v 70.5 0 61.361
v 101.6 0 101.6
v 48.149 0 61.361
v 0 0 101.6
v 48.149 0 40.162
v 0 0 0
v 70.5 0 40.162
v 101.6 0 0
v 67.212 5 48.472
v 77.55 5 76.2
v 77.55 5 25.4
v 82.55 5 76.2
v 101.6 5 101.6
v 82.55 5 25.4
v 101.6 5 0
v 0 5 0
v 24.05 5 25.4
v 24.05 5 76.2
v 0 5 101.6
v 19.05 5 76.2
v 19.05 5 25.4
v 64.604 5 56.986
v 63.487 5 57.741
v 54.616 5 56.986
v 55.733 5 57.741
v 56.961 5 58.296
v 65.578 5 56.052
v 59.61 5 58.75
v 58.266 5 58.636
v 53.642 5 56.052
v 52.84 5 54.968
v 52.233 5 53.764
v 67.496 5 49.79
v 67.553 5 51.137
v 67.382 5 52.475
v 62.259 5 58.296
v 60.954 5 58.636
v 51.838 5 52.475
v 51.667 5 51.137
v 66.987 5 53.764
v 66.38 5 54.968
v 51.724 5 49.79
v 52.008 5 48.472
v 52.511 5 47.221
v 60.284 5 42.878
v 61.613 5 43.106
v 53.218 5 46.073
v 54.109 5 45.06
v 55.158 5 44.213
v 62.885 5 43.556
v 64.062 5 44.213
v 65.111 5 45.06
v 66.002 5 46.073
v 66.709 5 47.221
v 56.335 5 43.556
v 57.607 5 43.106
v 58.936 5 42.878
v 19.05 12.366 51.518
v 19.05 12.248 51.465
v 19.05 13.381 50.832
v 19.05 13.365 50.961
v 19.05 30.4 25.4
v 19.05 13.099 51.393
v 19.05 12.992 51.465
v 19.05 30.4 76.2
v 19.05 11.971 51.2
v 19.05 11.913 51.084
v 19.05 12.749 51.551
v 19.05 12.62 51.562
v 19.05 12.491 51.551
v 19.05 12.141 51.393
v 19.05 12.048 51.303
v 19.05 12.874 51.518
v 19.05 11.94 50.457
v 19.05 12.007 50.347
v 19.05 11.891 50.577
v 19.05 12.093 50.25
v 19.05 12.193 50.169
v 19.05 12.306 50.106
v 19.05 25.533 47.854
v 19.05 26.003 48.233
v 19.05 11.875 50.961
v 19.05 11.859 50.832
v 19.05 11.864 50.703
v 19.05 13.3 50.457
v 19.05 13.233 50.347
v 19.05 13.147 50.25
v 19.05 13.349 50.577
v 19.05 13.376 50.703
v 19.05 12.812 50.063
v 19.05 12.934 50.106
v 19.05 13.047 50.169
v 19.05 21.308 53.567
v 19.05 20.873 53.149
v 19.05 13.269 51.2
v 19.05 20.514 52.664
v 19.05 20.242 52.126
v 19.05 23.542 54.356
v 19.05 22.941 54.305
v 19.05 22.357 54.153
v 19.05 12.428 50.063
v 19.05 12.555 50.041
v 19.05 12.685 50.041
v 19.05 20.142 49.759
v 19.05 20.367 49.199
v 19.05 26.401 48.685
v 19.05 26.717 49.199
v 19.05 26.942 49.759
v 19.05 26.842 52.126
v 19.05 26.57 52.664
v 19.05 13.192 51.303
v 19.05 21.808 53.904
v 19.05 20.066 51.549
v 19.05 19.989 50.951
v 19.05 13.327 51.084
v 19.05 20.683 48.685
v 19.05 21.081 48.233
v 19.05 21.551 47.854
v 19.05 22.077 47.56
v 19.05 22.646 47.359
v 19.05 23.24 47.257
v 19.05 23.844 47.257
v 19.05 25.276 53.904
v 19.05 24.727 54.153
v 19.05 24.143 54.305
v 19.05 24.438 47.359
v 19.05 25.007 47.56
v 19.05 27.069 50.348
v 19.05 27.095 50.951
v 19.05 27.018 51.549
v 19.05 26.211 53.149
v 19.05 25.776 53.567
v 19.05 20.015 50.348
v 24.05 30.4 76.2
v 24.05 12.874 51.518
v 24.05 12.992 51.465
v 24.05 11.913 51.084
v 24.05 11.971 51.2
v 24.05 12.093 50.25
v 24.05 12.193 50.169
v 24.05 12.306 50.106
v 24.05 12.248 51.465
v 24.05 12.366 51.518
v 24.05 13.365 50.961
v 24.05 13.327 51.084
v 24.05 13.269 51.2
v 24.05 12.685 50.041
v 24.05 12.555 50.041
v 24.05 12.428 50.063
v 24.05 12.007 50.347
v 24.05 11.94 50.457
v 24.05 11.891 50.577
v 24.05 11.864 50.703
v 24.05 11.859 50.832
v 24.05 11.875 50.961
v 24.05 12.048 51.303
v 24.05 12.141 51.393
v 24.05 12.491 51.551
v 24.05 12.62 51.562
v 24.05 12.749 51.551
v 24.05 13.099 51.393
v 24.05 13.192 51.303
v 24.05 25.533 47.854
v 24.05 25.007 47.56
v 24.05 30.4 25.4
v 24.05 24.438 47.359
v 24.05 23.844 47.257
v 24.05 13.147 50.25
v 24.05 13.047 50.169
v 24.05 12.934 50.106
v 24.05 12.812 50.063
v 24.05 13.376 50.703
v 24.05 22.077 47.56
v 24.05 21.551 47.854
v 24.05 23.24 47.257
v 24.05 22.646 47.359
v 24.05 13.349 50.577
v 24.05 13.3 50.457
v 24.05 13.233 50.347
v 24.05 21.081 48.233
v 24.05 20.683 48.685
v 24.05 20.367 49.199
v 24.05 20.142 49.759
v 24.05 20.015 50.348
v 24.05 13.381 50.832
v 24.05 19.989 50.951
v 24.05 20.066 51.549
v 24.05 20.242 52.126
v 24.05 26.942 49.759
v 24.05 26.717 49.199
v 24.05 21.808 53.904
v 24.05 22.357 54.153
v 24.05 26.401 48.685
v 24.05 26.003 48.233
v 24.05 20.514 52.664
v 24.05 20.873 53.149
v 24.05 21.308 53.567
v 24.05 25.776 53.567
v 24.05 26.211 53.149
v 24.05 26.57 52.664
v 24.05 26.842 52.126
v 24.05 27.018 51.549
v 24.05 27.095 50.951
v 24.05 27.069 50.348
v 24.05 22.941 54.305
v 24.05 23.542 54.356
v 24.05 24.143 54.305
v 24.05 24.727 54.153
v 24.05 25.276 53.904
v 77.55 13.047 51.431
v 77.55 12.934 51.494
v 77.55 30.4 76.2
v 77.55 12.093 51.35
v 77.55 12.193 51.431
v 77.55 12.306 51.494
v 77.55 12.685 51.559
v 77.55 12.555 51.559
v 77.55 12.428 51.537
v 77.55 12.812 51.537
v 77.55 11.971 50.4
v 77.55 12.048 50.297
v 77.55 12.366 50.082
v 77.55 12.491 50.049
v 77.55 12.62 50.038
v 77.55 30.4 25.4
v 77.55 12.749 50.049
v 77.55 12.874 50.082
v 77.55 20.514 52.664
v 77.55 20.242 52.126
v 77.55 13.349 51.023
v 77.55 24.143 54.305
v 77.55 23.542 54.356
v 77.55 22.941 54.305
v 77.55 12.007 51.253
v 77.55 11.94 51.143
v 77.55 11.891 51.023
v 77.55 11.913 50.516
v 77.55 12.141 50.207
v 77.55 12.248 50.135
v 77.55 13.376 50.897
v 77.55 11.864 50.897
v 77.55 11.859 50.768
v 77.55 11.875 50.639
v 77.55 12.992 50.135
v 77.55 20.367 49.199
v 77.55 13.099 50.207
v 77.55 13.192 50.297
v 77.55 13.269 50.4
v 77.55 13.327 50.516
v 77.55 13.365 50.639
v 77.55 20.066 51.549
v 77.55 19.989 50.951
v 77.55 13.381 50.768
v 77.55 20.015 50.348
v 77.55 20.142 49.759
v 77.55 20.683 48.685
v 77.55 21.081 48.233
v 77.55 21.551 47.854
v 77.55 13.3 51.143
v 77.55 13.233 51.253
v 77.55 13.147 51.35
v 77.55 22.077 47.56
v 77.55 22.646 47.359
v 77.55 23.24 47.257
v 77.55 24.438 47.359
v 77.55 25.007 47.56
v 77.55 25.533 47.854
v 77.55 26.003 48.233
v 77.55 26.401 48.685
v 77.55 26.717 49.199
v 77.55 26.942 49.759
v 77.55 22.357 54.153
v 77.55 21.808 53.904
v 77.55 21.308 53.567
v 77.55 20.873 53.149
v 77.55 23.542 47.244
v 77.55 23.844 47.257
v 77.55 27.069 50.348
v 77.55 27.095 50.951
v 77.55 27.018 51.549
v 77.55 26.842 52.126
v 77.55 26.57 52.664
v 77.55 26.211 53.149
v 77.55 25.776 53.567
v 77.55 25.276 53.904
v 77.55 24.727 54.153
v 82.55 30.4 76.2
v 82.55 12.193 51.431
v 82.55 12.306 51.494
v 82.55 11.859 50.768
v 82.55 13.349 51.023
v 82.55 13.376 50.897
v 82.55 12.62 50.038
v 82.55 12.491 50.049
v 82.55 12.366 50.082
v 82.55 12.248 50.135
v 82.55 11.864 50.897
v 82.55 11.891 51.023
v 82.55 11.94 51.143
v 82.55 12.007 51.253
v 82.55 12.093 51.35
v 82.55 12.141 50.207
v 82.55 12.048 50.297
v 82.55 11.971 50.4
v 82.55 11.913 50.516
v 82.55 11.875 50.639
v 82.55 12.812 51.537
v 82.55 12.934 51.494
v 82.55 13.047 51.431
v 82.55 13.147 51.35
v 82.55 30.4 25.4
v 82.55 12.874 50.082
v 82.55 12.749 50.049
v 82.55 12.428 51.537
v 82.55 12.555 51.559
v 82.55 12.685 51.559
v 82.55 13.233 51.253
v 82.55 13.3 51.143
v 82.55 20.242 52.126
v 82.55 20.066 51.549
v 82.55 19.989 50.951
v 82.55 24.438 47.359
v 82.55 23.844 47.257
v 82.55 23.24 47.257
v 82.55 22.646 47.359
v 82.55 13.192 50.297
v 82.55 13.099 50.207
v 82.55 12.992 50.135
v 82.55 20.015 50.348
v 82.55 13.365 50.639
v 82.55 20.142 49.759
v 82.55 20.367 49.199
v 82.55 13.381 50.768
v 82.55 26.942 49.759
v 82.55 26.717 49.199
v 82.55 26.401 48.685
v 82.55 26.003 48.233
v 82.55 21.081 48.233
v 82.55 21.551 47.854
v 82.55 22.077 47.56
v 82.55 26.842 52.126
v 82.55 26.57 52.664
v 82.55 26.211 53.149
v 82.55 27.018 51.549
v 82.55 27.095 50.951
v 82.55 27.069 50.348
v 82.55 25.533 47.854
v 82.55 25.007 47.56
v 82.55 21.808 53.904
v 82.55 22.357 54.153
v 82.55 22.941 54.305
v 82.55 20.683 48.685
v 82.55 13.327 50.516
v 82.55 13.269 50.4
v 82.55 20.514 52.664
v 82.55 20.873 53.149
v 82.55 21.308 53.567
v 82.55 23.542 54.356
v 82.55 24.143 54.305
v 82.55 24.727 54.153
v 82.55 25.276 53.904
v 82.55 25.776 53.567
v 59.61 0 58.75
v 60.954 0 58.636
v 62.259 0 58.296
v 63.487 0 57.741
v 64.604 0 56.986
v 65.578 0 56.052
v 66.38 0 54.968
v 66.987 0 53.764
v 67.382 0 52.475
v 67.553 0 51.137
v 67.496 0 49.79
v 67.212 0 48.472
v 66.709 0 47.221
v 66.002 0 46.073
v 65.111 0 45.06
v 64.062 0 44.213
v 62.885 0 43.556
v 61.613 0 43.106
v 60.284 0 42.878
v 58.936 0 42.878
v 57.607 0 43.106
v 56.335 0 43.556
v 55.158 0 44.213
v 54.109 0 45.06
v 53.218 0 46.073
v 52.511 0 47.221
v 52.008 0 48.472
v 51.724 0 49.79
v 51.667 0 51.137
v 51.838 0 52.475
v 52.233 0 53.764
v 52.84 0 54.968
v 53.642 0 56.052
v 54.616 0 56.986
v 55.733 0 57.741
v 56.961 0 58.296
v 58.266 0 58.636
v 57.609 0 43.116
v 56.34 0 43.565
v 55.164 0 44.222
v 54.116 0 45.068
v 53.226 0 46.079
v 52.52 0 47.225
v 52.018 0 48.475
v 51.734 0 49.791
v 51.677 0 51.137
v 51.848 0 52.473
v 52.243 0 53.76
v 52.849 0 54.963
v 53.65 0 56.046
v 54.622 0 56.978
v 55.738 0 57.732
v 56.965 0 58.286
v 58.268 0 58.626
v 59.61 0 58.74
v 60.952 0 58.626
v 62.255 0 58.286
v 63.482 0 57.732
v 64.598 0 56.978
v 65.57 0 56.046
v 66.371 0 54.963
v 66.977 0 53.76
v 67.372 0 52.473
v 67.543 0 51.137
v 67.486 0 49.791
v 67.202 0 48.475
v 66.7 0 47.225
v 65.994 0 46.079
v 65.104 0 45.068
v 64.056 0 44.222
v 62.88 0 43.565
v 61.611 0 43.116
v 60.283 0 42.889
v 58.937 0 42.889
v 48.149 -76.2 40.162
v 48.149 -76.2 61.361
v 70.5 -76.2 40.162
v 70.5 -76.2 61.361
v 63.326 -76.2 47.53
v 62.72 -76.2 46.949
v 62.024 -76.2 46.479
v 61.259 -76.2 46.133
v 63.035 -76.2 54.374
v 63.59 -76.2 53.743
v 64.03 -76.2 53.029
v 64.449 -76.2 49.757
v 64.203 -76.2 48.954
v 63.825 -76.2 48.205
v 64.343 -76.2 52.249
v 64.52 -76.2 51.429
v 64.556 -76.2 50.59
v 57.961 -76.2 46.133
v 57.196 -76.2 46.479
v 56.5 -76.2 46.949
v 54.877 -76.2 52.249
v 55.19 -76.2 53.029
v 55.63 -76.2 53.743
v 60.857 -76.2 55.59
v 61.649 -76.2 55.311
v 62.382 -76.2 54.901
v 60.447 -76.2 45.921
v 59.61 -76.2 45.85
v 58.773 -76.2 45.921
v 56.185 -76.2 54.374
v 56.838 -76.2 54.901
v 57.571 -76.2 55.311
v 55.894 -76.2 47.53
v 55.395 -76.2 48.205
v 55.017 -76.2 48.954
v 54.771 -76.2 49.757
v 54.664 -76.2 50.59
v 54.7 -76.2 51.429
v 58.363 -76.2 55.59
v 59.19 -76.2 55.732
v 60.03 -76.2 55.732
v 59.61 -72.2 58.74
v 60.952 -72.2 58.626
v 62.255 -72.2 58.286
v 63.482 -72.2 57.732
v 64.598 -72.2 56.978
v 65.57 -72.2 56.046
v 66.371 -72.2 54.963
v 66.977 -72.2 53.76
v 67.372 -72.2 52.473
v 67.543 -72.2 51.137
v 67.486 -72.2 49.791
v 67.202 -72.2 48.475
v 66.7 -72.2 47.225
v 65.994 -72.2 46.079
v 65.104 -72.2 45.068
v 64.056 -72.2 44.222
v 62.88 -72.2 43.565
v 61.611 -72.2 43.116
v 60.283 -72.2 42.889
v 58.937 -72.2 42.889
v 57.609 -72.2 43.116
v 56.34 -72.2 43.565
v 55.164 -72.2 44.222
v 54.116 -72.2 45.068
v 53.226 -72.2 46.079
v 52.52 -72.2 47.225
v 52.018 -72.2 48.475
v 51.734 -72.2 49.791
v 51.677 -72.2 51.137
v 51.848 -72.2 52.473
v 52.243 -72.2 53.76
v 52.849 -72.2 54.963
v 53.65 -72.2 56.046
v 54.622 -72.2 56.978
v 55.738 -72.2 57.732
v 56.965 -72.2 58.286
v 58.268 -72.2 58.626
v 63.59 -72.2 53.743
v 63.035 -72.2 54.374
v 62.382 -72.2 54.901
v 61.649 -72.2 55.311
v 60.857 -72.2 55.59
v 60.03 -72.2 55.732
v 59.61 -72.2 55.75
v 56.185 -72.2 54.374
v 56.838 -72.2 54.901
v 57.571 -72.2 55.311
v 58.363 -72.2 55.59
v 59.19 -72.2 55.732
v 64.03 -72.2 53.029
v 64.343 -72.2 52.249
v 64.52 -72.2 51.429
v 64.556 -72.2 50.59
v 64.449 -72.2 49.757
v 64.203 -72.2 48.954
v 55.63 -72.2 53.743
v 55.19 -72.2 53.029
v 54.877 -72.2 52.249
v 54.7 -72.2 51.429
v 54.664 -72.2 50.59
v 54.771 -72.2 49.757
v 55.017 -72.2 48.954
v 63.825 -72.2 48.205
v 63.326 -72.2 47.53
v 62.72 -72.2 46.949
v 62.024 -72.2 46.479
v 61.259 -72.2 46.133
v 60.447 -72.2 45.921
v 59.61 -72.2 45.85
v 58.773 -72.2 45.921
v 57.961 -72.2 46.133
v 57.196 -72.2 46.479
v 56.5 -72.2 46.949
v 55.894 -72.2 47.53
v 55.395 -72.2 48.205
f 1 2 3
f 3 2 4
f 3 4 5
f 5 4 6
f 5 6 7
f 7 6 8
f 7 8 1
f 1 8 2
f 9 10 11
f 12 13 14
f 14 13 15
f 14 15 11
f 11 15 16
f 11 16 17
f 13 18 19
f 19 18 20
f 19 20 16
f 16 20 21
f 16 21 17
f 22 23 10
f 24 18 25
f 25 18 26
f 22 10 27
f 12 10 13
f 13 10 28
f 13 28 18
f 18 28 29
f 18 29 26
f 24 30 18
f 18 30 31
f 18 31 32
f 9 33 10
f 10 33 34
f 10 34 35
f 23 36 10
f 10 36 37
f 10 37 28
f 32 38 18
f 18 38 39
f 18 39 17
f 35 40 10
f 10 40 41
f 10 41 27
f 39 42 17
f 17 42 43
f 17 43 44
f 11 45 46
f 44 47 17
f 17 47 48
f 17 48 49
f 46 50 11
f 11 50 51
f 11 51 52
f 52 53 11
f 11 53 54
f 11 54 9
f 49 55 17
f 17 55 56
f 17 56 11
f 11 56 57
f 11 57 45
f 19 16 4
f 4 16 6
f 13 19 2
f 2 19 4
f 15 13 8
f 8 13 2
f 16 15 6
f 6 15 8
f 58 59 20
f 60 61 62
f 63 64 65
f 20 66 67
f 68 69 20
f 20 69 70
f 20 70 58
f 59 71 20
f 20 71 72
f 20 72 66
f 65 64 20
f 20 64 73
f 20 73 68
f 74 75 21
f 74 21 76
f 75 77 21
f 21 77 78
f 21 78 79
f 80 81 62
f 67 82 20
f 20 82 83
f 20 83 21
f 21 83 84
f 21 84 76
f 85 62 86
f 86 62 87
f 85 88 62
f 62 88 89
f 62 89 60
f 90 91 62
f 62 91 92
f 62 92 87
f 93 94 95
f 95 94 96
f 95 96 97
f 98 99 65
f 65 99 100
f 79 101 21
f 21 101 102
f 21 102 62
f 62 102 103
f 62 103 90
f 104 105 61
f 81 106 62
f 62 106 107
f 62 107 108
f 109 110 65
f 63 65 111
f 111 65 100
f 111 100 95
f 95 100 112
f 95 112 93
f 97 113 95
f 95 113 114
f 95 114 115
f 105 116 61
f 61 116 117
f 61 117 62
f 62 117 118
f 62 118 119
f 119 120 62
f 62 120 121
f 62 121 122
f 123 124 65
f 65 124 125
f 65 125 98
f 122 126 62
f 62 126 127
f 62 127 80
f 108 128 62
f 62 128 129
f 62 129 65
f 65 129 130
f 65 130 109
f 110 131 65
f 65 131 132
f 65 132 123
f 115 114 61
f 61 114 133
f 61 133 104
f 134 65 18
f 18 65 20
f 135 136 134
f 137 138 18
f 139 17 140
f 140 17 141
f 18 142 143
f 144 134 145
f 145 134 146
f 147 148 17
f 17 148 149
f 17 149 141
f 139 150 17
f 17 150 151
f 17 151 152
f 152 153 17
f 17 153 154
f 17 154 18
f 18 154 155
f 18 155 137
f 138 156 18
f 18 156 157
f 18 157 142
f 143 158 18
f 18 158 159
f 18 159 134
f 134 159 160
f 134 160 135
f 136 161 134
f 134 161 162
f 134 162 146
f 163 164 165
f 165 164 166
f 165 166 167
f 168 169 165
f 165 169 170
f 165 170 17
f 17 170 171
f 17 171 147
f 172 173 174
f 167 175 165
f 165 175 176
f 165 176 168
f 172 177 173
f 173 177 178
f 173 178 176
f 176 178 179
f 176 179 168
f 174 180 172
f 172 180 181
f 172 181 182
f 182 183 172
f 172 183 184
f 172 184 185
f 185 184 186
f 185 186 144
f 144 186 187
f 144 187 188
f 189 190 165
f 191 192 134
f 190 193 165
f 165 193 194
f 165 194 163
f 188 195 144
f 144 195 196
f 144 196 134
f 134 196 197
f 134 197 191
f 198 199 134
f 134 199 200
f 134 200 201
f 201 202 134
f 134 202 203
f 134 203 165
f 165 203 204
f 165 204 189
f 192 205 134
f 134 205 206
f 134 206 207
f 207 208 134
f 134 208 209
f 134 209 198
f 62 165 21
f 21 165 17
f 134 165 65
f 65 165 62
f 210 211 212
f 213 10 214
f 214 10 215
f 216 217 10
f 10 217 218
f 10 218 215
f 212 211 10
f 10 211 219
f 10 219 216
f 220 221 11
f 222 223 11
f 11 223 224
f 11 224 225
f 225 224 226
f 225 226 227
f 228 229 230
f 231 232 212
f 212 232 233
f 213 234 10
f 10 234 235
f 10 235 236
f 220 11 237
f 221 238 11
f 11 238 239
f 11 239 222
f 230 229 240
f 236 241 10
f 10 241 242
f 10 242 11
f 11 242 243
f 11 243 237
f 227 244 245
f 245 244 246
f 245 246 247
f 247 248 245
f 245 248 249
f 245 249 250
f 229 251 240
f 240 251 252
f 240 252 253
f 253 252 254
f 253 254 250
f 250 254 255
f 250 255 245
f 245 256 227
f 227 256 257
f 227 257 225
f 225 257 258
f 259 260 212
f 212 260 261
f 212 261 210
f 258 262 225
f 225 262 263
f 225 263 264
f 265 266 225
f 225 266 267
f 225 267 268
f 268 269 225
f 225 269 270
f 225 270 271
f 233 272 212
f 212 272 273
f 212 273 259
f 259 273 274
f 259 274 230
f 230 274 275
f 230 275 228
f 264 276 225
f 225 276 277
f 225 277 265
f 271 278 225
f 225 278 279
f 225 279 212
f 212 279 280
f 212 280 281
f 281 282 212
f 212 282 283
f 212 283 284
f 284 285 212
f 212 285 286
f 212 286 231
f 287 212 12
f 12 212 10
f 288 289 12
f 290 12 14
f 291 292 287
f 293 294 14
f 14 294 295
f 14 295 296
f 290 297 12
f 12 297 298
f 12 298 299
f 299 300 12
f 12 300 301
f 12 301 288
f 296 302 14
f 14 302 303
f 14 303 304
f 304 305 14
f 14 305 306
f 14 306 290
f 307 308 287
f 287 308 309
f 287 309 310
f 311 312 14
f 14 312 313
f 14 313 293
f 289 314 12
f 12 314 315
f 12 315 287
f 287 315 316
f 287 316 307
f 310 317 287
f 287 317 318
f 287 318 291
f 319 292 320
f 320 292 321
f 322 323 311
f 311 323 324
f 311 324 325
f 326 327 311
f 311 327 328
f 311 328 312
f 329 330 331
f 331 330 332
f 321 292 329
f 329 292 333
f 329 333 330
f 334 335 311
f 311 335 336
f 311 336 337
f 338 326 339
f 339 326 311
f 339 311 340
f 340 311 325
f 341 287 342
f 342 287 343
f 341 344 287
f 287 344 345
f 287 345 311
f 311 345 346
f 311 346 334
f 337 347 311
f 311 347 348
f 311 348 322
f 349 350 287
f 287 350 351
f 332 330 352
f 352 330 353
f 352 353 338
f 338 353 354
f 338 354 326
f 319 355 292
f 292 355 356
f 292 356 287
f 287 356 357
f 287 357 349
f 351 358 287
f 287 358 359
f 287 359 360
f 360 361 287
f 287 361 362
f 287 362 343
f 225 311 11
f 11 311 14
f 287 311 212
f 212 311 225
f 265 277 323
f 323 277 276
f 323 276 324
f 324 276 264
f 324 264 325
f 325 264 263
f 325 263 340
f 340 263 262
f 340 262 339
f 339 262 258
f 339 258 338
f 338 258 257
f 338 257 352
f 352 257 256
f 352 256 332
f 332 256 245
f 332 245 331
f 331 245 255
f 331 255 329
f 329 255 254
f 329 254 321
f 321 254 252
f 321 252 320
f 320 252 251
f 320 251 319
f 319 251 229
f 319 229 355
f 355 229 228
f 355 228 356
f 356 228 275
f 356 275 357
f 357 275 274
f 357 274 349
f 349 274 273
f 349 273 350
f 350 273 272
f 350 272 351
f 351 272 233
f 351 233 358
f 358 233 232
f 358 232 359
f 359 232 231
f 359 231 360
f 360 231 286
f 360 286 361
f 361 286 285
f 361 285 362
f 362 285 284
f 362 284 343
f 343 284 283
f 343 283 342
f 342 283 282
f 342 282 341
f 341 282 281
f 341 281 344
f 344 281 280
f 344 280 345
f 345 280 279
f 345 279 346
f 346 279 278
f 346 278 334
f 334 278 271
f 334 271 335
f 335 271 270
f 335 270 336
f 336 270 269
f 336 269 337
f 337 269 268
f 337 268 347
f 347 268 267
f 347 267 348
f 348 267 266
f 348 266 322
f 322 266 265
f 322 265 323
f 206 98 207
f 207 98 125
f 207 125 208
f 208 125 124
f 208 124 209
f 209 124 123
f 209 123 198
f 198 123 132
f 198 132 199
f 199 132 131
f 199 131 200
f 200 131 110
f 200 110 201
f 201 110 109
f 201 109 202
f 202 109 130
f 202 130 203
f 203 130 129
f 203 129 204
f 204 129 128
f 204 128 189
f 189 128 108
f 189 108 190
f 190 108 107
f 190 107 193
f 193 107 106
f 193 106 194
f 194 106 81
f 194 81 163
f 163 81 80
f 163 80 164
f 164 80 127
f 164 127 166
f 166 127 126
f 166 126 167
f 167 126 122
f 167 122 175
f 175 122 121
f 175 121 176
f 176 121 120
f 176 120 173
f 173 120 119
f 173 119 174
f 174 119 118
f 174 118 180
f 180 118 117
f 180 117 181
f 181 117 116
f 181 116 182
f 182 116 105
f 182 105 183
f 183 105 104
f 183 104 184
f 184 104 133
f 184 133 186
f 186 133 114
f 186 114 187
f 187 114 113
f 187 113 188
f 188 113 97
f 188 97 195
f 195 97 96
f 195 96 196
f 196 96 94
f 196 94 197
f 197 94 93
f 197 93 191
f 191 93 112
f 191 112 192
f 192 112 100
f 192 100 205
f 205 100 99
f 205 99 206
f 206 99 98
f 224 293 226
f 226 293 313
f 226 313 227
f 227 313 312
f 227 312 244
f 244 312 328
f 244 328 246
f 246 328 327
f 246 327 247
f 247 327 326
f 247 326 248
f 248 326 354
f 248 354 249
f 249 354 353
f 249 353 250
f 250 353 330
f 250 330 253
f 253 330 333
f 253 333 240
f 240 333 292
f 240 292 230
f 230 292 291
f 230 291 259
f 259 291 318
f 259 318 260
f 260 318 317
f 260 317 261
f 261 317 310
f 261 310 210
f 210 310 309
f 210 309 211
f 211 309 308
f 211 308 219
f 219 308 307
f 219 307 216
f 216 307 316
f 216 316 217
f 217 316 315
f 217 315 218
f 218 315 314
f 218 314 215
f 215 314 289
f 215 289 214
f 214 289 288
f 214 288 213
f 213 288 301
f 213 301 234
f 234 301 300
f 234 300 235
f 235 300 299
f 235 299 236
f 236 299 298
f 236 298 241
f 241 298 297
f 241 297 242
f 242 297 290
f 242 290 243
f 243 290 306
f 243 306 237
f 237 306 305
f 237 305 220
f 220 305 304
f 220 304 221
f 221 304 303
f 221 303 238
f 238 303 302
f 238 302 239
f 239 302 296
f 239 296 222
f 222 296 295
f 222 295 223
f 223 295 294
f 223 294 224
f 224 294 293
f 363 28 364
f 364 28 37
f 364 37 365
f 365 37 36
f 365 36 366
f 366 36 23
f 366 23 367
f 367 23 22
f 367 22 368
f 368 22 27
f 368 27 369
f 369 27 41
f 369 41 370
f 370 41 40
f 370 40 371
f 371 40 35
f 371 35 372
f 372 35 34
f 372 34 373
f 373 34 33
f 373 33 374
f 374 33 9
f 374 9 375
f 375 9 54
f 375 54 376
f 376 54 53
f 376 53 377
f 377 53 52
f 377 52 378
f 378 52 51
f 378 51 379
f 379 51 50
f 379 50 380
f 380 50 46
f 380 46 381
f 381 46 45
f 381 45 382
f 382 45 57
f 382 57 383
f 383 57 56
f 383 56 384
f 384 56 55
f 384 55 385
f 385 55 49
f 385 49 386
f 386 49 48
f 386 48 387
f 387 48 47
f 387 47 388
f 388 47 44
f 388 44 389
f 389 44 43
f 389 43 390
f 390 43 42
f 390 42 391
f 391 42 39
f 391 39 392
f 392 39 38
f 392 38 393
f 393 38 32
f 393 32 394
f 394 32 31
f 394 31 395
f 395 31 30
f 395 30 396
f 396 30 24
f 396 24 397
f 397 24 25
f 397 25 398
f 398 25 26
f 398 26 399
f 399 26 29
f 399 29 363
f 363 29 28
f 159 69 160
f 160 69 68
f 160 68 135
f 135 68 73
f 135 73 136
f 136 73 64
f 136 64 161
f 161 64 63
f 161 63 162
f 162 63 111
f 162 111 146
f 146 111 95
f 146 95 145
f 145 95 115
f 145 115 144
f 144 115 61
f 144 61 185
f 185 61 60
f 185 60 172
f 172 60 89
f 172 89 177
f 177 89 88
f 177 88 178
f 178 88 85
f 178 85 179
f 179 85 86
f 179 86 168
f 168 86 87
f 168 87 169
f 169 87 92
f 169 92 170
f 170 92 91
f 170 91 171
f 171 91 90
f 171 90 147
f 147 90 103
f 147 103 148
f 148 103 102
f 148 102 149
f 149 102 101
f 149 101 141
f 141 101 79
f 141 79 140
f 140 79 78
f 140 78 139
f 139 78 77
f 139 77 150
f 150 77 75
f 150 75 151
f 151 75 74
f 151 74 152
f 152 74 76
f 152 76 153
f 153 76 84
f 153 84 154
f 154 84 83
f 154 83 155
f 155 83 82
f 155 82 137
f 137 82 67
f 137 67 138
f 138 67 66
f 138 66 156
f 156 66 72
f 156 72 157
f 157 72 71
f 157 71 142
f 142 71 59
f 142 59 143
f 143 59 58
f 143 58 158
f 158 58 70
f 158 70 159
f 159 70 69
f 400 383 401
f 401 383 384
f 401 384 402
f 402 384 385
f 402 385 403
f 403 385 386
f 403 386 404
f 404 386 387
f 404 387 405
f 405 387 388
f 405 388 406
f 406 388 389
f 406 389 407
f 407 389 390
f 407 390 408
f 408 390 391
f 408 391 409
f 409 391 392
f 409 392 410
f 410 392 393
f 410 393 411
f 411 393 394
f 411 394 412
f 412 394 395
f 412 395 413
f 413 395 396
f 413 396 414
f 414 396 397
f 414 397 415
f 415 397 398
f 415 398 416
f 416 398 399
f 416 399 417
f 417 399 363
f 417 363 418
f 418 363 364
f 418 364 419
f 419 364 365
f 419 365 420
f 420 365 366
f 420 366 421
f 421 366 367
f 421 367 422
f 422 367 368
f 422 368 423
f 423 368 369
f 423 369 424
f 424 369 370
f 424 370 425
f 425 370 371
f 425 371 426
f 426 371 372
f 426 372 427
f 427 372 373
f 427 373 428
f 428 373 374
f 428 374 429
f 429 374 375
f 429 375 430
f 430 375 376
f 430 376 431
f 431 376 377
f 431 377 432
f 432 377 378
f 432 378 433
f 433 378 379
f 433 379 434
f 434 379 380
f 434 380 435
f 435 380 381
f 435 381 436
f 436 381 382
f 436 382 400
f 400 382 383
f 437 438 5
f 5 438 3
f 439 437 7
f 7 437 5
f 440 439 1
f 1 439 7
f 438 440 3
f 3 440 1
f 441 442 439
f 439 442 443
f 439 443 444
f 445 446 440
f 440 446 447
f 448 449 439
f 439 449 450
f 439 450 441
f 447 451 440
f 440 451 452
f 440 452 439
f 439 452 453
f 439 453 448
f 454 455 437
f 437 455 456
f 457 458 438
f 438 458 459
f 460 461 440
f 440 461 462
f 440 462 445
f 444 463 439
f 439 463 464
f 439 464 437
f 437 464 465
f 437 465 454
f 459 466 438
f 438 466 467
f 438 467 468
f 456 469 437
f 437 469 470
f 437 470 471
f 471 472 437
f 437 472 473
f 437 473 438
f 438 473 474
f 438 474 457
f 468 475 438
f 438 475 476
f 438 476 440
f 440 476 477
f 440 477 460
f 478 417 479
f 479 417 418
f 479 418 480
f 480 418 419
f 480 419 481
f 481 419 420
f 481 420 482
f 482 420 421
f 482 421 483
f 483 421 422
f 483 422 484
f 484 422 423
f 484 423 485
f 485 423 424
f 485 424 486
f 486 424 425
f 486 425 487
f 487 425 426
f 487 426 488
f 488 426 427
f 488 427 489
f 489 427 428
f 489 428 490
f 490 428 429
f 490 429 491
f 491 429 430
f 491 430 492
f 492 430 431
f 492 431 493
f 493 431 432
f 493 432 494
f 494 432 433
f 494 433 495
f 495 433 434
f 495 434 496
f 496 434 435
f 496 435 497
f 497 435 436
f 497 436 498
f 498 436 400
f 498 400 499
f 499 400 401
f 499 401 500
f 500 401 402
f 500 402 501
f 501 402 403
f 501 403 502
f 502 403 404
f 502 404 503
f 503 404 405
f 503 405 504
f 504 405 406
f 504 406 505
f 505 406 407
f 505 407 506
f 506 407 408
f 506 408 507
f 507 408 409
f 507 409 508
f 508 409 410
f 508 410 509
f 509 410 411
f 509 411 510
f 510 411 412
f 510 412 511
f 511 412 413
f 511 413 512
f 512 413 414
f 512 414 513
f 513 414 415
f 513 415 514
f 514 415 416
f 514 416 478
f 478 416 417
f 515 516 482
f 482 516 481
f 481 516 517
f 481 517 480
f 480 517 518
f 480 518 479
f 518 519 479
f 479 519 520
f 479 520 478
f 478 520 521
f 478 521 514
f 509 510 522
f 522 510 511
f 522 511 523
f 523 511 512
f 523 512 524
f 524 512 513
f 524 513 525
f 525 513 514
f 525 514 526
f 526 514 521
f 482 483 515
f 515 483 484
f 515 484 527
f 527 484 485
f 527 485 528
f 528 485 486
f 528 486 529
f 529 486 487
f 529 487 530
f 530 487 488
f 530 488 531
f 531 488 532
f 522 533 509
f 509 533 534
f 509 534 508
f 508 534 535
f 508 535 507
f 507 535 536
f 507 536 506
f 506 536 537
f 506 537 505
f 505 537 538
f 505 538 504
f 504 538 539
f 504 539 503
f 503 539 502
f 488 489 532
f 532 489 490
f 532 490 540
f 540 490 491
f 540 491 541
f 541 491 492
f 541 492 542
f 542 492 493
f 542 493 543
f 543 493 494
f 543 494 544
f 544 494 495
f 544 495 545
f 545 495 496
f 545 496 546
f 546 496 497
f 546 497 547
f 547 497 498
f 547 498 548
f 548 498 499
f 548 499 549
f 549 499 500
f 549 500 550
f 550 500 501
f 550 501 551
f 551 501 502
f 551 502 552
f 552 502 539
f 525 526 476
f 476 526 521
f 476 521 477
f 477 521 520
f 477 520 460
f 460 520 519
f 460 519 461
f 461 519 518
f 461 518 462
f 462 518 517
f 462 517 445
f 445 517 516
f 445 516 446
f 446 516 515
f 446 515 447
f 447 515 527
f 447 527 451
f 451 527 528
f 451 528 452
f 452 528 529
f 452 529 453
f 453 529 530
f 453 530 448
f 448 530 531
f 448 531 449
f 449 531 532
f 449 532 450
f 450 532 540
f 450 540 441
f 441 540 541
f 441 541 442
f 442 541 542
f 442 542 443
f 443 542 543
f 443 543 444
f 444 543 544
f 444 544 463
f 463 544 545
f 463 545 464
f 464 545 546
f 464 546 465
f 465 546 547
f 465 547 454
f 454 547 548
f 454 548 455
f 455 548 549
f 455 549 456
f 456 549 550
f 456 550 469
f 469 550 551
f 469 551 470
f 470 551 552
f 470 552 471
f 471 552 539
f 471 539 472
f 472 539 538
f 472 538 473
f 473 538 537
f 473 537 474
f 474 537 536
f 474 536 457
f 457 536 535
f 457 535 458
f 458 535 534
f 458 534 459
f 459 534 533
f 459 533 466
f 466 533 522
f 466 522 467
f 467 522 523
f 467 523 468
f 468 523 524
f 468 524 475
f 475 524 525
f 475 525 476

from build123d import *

# Parameters (mm, degrees)
SKETCH2_W           = 101.6
SKETCH2_H           = 101.6
BOSS_EXTRUDE2_DEPTH = 5
SKETCH3_W           = 5
SKETCH3_H           = 50.8
BOSS_EXTRUDE3_DEPTH = 25.4
SKETCH4_W           = 5
SKETCH4_H           = 50.8
BOSS_EXTRUDE4_DEPTH = 25.4
SKETCH8_R           = 3.556
CUT_EXTRUDE1_DEPTH  = 135.392047756
CUT_EXTRUDE2_REACH  = 136.392
SKETCH9_R           = 0.762
SKETCH11_R          = 7.9502
CUT_EXTRUDE3_DEPTH  = 146.911891222
CUT_EXTRUDE5_REACH  = 136.392
SKETCH18_R          = 0.762
SKETCH19_W          = 22.350467385
SKETCH19_H          = 21.198381437
BOSS_EXTRUDE5_DEPTH = 76.2
SKETCH22_R          = 7.94
CUT_EXTRUDE7_DEPTH  = 72.2
SKETCH23_R          = 4.95
CUT_EXTRUDE8_DEPTH  = 179.909697893


with BuildPart() as part:
    # Sketch2 → Boss-Extrude2 (new body)
    with BuildSketch(Plane(origin=(0, 0, 0), x_dir=(1, 0, 0), z_dir=(0, 1, 0))):
        with Locations((50.8, -50.8)):
            Rectangle(SKETCH2_W, SKETCH2_H)
    extrude(amount=BOSS_EXTRUDE2_DEPTH)

    # Sketch3 → Boss-Extrude3 (add)
    with BuildSketch(Plane(origin=(0, 5, 0), x_dir=(1, 0, 0), z_dir=(0, 1, 0))):
        with Locations((21.55, -50.8)):
            Rectangle(SKETCH3_W, SKETCH3_H)
    extrude(amount=BOSS_EXTRUDE3_DEPTH)

    # Sketch4 → Boss-Extrude4 (add)
    with BuildSketch(Plane(origin=(0, 5, 0), x_dir=(1, 0, 0), z_dir=(0, 1, 0))):
        with Locations((80.05, -50.8)):
            Rectangle(SKETCH4_W, SKETCH4_H)
    extrude(amount=BOSS_EXTRUDE4_DEPTH)

    # Sketch8 → Cut-Extrude1 (cut, through all)
    with BuildSketch(Plane.ZY.offset(-19.05)):
        with Locations((50.8, 23.542)):
            Circle(SKETCH8_R)
    extrude(amount=-CUT_EXTRUDE1_DEPTH, mode=Mode.SUBTRACT)

    # Sketch9 → Cut-Extrude2 (cut, up to next)
    with BuildSketch(Plane(origin=(82.55, 0, 0), x_dir=(0, 0, -1), z_dir=(1, 0, 0)), mode=Mode.PRIVATE) as cut_extrude2_sk1:
        with Locations((-50.8, 12.62)):
            Circle(SKETCH9_R)
    cut_extrude2_tool1 = extrude(cut_extrude2_sk1.sketch, amount=-CUT_EXTRUDE2_REACH, mode=Mode.PRIVATE) & part.part
    add(cut_extrude2_tool1.solids().sort_by_distance((82.55, 12.62, 50.8))[0], mode=Mode.SUBTRACT)

    # Sketch11 → Cut-Extrude3 (cut, through all)
    with BuildSketch(Plane(origin=(0, 5, 0), x_dir=(1, 0, 0), z_dir=(0, 1, 0))):
        with Locations(Location((59.61, -50.8, 0), (0, 0, 270))):
            Circle(SKETCH11_R)
    extrude(amount=-CUT_EXTRUDE3_DEPTH, mode=Mode.SUBTRACT)

    # Sketch18 → Cut-Extrude5 (cut, up to next)
    with BuildSketch(Plane.ZY.offset(-19.05), mode=Mode.PRIVATE) as cut_extrude5_sk1:
        with Locations(Location((50.8, 12.62, 0), (0, 0, 180))):
            Circle(SKETCH18_R)
    cut_extrude5_tool1 = extrude(cut_extrude5_sk1.sketch, amount=-CUT_EXTRUDE5_REACH, mode=Mode.PRIVATE) & part.part
    add(cut_extrude5_tool1.solids().sort_by_distance((19.05, 12.62, 50.8))[0], mode=Mode.SUBTRACT)

    # Sketch19 → Boss-Extrude5 (add)
    with BuildSketch(Plane.XZ):
        with Locations((59.324658632, 50.761526183)):
            Rectangle(SKETCH19_W, SKETCH19_H)
    extrude(amount=BOSS_EXTRUDE5_DEPTH)

    # Sketch22 → Cut-Extrude7 (cut)
    with BuildSketch(Plane(origin=(0, 0, 0), x_dir=(1, 0, 0), z_dir=(0, 1, 0))):
        with Locations(Location((59.61, -50.8, 0), (0, 0, 270))):
            Circle(SKETCH22_R)
    extrude(amount=-CUT_EXTRUDE7_DEPTH, mode=Mode.SUBTRACT)

    # Sketch23 → Cut-Extrude8 (cut, through all)
    with BuildSketch(Plane.XZ.offset(76.2)):
        with Locations(Location((59.61, 50.8, 0), (0, 0, 270))):
            Circle(SKETCH23_R)
    extrude(amount=-CUT_EXTRUDE8_DEPTH, mode=Mode.SUBTRACT)


solid = part.part
